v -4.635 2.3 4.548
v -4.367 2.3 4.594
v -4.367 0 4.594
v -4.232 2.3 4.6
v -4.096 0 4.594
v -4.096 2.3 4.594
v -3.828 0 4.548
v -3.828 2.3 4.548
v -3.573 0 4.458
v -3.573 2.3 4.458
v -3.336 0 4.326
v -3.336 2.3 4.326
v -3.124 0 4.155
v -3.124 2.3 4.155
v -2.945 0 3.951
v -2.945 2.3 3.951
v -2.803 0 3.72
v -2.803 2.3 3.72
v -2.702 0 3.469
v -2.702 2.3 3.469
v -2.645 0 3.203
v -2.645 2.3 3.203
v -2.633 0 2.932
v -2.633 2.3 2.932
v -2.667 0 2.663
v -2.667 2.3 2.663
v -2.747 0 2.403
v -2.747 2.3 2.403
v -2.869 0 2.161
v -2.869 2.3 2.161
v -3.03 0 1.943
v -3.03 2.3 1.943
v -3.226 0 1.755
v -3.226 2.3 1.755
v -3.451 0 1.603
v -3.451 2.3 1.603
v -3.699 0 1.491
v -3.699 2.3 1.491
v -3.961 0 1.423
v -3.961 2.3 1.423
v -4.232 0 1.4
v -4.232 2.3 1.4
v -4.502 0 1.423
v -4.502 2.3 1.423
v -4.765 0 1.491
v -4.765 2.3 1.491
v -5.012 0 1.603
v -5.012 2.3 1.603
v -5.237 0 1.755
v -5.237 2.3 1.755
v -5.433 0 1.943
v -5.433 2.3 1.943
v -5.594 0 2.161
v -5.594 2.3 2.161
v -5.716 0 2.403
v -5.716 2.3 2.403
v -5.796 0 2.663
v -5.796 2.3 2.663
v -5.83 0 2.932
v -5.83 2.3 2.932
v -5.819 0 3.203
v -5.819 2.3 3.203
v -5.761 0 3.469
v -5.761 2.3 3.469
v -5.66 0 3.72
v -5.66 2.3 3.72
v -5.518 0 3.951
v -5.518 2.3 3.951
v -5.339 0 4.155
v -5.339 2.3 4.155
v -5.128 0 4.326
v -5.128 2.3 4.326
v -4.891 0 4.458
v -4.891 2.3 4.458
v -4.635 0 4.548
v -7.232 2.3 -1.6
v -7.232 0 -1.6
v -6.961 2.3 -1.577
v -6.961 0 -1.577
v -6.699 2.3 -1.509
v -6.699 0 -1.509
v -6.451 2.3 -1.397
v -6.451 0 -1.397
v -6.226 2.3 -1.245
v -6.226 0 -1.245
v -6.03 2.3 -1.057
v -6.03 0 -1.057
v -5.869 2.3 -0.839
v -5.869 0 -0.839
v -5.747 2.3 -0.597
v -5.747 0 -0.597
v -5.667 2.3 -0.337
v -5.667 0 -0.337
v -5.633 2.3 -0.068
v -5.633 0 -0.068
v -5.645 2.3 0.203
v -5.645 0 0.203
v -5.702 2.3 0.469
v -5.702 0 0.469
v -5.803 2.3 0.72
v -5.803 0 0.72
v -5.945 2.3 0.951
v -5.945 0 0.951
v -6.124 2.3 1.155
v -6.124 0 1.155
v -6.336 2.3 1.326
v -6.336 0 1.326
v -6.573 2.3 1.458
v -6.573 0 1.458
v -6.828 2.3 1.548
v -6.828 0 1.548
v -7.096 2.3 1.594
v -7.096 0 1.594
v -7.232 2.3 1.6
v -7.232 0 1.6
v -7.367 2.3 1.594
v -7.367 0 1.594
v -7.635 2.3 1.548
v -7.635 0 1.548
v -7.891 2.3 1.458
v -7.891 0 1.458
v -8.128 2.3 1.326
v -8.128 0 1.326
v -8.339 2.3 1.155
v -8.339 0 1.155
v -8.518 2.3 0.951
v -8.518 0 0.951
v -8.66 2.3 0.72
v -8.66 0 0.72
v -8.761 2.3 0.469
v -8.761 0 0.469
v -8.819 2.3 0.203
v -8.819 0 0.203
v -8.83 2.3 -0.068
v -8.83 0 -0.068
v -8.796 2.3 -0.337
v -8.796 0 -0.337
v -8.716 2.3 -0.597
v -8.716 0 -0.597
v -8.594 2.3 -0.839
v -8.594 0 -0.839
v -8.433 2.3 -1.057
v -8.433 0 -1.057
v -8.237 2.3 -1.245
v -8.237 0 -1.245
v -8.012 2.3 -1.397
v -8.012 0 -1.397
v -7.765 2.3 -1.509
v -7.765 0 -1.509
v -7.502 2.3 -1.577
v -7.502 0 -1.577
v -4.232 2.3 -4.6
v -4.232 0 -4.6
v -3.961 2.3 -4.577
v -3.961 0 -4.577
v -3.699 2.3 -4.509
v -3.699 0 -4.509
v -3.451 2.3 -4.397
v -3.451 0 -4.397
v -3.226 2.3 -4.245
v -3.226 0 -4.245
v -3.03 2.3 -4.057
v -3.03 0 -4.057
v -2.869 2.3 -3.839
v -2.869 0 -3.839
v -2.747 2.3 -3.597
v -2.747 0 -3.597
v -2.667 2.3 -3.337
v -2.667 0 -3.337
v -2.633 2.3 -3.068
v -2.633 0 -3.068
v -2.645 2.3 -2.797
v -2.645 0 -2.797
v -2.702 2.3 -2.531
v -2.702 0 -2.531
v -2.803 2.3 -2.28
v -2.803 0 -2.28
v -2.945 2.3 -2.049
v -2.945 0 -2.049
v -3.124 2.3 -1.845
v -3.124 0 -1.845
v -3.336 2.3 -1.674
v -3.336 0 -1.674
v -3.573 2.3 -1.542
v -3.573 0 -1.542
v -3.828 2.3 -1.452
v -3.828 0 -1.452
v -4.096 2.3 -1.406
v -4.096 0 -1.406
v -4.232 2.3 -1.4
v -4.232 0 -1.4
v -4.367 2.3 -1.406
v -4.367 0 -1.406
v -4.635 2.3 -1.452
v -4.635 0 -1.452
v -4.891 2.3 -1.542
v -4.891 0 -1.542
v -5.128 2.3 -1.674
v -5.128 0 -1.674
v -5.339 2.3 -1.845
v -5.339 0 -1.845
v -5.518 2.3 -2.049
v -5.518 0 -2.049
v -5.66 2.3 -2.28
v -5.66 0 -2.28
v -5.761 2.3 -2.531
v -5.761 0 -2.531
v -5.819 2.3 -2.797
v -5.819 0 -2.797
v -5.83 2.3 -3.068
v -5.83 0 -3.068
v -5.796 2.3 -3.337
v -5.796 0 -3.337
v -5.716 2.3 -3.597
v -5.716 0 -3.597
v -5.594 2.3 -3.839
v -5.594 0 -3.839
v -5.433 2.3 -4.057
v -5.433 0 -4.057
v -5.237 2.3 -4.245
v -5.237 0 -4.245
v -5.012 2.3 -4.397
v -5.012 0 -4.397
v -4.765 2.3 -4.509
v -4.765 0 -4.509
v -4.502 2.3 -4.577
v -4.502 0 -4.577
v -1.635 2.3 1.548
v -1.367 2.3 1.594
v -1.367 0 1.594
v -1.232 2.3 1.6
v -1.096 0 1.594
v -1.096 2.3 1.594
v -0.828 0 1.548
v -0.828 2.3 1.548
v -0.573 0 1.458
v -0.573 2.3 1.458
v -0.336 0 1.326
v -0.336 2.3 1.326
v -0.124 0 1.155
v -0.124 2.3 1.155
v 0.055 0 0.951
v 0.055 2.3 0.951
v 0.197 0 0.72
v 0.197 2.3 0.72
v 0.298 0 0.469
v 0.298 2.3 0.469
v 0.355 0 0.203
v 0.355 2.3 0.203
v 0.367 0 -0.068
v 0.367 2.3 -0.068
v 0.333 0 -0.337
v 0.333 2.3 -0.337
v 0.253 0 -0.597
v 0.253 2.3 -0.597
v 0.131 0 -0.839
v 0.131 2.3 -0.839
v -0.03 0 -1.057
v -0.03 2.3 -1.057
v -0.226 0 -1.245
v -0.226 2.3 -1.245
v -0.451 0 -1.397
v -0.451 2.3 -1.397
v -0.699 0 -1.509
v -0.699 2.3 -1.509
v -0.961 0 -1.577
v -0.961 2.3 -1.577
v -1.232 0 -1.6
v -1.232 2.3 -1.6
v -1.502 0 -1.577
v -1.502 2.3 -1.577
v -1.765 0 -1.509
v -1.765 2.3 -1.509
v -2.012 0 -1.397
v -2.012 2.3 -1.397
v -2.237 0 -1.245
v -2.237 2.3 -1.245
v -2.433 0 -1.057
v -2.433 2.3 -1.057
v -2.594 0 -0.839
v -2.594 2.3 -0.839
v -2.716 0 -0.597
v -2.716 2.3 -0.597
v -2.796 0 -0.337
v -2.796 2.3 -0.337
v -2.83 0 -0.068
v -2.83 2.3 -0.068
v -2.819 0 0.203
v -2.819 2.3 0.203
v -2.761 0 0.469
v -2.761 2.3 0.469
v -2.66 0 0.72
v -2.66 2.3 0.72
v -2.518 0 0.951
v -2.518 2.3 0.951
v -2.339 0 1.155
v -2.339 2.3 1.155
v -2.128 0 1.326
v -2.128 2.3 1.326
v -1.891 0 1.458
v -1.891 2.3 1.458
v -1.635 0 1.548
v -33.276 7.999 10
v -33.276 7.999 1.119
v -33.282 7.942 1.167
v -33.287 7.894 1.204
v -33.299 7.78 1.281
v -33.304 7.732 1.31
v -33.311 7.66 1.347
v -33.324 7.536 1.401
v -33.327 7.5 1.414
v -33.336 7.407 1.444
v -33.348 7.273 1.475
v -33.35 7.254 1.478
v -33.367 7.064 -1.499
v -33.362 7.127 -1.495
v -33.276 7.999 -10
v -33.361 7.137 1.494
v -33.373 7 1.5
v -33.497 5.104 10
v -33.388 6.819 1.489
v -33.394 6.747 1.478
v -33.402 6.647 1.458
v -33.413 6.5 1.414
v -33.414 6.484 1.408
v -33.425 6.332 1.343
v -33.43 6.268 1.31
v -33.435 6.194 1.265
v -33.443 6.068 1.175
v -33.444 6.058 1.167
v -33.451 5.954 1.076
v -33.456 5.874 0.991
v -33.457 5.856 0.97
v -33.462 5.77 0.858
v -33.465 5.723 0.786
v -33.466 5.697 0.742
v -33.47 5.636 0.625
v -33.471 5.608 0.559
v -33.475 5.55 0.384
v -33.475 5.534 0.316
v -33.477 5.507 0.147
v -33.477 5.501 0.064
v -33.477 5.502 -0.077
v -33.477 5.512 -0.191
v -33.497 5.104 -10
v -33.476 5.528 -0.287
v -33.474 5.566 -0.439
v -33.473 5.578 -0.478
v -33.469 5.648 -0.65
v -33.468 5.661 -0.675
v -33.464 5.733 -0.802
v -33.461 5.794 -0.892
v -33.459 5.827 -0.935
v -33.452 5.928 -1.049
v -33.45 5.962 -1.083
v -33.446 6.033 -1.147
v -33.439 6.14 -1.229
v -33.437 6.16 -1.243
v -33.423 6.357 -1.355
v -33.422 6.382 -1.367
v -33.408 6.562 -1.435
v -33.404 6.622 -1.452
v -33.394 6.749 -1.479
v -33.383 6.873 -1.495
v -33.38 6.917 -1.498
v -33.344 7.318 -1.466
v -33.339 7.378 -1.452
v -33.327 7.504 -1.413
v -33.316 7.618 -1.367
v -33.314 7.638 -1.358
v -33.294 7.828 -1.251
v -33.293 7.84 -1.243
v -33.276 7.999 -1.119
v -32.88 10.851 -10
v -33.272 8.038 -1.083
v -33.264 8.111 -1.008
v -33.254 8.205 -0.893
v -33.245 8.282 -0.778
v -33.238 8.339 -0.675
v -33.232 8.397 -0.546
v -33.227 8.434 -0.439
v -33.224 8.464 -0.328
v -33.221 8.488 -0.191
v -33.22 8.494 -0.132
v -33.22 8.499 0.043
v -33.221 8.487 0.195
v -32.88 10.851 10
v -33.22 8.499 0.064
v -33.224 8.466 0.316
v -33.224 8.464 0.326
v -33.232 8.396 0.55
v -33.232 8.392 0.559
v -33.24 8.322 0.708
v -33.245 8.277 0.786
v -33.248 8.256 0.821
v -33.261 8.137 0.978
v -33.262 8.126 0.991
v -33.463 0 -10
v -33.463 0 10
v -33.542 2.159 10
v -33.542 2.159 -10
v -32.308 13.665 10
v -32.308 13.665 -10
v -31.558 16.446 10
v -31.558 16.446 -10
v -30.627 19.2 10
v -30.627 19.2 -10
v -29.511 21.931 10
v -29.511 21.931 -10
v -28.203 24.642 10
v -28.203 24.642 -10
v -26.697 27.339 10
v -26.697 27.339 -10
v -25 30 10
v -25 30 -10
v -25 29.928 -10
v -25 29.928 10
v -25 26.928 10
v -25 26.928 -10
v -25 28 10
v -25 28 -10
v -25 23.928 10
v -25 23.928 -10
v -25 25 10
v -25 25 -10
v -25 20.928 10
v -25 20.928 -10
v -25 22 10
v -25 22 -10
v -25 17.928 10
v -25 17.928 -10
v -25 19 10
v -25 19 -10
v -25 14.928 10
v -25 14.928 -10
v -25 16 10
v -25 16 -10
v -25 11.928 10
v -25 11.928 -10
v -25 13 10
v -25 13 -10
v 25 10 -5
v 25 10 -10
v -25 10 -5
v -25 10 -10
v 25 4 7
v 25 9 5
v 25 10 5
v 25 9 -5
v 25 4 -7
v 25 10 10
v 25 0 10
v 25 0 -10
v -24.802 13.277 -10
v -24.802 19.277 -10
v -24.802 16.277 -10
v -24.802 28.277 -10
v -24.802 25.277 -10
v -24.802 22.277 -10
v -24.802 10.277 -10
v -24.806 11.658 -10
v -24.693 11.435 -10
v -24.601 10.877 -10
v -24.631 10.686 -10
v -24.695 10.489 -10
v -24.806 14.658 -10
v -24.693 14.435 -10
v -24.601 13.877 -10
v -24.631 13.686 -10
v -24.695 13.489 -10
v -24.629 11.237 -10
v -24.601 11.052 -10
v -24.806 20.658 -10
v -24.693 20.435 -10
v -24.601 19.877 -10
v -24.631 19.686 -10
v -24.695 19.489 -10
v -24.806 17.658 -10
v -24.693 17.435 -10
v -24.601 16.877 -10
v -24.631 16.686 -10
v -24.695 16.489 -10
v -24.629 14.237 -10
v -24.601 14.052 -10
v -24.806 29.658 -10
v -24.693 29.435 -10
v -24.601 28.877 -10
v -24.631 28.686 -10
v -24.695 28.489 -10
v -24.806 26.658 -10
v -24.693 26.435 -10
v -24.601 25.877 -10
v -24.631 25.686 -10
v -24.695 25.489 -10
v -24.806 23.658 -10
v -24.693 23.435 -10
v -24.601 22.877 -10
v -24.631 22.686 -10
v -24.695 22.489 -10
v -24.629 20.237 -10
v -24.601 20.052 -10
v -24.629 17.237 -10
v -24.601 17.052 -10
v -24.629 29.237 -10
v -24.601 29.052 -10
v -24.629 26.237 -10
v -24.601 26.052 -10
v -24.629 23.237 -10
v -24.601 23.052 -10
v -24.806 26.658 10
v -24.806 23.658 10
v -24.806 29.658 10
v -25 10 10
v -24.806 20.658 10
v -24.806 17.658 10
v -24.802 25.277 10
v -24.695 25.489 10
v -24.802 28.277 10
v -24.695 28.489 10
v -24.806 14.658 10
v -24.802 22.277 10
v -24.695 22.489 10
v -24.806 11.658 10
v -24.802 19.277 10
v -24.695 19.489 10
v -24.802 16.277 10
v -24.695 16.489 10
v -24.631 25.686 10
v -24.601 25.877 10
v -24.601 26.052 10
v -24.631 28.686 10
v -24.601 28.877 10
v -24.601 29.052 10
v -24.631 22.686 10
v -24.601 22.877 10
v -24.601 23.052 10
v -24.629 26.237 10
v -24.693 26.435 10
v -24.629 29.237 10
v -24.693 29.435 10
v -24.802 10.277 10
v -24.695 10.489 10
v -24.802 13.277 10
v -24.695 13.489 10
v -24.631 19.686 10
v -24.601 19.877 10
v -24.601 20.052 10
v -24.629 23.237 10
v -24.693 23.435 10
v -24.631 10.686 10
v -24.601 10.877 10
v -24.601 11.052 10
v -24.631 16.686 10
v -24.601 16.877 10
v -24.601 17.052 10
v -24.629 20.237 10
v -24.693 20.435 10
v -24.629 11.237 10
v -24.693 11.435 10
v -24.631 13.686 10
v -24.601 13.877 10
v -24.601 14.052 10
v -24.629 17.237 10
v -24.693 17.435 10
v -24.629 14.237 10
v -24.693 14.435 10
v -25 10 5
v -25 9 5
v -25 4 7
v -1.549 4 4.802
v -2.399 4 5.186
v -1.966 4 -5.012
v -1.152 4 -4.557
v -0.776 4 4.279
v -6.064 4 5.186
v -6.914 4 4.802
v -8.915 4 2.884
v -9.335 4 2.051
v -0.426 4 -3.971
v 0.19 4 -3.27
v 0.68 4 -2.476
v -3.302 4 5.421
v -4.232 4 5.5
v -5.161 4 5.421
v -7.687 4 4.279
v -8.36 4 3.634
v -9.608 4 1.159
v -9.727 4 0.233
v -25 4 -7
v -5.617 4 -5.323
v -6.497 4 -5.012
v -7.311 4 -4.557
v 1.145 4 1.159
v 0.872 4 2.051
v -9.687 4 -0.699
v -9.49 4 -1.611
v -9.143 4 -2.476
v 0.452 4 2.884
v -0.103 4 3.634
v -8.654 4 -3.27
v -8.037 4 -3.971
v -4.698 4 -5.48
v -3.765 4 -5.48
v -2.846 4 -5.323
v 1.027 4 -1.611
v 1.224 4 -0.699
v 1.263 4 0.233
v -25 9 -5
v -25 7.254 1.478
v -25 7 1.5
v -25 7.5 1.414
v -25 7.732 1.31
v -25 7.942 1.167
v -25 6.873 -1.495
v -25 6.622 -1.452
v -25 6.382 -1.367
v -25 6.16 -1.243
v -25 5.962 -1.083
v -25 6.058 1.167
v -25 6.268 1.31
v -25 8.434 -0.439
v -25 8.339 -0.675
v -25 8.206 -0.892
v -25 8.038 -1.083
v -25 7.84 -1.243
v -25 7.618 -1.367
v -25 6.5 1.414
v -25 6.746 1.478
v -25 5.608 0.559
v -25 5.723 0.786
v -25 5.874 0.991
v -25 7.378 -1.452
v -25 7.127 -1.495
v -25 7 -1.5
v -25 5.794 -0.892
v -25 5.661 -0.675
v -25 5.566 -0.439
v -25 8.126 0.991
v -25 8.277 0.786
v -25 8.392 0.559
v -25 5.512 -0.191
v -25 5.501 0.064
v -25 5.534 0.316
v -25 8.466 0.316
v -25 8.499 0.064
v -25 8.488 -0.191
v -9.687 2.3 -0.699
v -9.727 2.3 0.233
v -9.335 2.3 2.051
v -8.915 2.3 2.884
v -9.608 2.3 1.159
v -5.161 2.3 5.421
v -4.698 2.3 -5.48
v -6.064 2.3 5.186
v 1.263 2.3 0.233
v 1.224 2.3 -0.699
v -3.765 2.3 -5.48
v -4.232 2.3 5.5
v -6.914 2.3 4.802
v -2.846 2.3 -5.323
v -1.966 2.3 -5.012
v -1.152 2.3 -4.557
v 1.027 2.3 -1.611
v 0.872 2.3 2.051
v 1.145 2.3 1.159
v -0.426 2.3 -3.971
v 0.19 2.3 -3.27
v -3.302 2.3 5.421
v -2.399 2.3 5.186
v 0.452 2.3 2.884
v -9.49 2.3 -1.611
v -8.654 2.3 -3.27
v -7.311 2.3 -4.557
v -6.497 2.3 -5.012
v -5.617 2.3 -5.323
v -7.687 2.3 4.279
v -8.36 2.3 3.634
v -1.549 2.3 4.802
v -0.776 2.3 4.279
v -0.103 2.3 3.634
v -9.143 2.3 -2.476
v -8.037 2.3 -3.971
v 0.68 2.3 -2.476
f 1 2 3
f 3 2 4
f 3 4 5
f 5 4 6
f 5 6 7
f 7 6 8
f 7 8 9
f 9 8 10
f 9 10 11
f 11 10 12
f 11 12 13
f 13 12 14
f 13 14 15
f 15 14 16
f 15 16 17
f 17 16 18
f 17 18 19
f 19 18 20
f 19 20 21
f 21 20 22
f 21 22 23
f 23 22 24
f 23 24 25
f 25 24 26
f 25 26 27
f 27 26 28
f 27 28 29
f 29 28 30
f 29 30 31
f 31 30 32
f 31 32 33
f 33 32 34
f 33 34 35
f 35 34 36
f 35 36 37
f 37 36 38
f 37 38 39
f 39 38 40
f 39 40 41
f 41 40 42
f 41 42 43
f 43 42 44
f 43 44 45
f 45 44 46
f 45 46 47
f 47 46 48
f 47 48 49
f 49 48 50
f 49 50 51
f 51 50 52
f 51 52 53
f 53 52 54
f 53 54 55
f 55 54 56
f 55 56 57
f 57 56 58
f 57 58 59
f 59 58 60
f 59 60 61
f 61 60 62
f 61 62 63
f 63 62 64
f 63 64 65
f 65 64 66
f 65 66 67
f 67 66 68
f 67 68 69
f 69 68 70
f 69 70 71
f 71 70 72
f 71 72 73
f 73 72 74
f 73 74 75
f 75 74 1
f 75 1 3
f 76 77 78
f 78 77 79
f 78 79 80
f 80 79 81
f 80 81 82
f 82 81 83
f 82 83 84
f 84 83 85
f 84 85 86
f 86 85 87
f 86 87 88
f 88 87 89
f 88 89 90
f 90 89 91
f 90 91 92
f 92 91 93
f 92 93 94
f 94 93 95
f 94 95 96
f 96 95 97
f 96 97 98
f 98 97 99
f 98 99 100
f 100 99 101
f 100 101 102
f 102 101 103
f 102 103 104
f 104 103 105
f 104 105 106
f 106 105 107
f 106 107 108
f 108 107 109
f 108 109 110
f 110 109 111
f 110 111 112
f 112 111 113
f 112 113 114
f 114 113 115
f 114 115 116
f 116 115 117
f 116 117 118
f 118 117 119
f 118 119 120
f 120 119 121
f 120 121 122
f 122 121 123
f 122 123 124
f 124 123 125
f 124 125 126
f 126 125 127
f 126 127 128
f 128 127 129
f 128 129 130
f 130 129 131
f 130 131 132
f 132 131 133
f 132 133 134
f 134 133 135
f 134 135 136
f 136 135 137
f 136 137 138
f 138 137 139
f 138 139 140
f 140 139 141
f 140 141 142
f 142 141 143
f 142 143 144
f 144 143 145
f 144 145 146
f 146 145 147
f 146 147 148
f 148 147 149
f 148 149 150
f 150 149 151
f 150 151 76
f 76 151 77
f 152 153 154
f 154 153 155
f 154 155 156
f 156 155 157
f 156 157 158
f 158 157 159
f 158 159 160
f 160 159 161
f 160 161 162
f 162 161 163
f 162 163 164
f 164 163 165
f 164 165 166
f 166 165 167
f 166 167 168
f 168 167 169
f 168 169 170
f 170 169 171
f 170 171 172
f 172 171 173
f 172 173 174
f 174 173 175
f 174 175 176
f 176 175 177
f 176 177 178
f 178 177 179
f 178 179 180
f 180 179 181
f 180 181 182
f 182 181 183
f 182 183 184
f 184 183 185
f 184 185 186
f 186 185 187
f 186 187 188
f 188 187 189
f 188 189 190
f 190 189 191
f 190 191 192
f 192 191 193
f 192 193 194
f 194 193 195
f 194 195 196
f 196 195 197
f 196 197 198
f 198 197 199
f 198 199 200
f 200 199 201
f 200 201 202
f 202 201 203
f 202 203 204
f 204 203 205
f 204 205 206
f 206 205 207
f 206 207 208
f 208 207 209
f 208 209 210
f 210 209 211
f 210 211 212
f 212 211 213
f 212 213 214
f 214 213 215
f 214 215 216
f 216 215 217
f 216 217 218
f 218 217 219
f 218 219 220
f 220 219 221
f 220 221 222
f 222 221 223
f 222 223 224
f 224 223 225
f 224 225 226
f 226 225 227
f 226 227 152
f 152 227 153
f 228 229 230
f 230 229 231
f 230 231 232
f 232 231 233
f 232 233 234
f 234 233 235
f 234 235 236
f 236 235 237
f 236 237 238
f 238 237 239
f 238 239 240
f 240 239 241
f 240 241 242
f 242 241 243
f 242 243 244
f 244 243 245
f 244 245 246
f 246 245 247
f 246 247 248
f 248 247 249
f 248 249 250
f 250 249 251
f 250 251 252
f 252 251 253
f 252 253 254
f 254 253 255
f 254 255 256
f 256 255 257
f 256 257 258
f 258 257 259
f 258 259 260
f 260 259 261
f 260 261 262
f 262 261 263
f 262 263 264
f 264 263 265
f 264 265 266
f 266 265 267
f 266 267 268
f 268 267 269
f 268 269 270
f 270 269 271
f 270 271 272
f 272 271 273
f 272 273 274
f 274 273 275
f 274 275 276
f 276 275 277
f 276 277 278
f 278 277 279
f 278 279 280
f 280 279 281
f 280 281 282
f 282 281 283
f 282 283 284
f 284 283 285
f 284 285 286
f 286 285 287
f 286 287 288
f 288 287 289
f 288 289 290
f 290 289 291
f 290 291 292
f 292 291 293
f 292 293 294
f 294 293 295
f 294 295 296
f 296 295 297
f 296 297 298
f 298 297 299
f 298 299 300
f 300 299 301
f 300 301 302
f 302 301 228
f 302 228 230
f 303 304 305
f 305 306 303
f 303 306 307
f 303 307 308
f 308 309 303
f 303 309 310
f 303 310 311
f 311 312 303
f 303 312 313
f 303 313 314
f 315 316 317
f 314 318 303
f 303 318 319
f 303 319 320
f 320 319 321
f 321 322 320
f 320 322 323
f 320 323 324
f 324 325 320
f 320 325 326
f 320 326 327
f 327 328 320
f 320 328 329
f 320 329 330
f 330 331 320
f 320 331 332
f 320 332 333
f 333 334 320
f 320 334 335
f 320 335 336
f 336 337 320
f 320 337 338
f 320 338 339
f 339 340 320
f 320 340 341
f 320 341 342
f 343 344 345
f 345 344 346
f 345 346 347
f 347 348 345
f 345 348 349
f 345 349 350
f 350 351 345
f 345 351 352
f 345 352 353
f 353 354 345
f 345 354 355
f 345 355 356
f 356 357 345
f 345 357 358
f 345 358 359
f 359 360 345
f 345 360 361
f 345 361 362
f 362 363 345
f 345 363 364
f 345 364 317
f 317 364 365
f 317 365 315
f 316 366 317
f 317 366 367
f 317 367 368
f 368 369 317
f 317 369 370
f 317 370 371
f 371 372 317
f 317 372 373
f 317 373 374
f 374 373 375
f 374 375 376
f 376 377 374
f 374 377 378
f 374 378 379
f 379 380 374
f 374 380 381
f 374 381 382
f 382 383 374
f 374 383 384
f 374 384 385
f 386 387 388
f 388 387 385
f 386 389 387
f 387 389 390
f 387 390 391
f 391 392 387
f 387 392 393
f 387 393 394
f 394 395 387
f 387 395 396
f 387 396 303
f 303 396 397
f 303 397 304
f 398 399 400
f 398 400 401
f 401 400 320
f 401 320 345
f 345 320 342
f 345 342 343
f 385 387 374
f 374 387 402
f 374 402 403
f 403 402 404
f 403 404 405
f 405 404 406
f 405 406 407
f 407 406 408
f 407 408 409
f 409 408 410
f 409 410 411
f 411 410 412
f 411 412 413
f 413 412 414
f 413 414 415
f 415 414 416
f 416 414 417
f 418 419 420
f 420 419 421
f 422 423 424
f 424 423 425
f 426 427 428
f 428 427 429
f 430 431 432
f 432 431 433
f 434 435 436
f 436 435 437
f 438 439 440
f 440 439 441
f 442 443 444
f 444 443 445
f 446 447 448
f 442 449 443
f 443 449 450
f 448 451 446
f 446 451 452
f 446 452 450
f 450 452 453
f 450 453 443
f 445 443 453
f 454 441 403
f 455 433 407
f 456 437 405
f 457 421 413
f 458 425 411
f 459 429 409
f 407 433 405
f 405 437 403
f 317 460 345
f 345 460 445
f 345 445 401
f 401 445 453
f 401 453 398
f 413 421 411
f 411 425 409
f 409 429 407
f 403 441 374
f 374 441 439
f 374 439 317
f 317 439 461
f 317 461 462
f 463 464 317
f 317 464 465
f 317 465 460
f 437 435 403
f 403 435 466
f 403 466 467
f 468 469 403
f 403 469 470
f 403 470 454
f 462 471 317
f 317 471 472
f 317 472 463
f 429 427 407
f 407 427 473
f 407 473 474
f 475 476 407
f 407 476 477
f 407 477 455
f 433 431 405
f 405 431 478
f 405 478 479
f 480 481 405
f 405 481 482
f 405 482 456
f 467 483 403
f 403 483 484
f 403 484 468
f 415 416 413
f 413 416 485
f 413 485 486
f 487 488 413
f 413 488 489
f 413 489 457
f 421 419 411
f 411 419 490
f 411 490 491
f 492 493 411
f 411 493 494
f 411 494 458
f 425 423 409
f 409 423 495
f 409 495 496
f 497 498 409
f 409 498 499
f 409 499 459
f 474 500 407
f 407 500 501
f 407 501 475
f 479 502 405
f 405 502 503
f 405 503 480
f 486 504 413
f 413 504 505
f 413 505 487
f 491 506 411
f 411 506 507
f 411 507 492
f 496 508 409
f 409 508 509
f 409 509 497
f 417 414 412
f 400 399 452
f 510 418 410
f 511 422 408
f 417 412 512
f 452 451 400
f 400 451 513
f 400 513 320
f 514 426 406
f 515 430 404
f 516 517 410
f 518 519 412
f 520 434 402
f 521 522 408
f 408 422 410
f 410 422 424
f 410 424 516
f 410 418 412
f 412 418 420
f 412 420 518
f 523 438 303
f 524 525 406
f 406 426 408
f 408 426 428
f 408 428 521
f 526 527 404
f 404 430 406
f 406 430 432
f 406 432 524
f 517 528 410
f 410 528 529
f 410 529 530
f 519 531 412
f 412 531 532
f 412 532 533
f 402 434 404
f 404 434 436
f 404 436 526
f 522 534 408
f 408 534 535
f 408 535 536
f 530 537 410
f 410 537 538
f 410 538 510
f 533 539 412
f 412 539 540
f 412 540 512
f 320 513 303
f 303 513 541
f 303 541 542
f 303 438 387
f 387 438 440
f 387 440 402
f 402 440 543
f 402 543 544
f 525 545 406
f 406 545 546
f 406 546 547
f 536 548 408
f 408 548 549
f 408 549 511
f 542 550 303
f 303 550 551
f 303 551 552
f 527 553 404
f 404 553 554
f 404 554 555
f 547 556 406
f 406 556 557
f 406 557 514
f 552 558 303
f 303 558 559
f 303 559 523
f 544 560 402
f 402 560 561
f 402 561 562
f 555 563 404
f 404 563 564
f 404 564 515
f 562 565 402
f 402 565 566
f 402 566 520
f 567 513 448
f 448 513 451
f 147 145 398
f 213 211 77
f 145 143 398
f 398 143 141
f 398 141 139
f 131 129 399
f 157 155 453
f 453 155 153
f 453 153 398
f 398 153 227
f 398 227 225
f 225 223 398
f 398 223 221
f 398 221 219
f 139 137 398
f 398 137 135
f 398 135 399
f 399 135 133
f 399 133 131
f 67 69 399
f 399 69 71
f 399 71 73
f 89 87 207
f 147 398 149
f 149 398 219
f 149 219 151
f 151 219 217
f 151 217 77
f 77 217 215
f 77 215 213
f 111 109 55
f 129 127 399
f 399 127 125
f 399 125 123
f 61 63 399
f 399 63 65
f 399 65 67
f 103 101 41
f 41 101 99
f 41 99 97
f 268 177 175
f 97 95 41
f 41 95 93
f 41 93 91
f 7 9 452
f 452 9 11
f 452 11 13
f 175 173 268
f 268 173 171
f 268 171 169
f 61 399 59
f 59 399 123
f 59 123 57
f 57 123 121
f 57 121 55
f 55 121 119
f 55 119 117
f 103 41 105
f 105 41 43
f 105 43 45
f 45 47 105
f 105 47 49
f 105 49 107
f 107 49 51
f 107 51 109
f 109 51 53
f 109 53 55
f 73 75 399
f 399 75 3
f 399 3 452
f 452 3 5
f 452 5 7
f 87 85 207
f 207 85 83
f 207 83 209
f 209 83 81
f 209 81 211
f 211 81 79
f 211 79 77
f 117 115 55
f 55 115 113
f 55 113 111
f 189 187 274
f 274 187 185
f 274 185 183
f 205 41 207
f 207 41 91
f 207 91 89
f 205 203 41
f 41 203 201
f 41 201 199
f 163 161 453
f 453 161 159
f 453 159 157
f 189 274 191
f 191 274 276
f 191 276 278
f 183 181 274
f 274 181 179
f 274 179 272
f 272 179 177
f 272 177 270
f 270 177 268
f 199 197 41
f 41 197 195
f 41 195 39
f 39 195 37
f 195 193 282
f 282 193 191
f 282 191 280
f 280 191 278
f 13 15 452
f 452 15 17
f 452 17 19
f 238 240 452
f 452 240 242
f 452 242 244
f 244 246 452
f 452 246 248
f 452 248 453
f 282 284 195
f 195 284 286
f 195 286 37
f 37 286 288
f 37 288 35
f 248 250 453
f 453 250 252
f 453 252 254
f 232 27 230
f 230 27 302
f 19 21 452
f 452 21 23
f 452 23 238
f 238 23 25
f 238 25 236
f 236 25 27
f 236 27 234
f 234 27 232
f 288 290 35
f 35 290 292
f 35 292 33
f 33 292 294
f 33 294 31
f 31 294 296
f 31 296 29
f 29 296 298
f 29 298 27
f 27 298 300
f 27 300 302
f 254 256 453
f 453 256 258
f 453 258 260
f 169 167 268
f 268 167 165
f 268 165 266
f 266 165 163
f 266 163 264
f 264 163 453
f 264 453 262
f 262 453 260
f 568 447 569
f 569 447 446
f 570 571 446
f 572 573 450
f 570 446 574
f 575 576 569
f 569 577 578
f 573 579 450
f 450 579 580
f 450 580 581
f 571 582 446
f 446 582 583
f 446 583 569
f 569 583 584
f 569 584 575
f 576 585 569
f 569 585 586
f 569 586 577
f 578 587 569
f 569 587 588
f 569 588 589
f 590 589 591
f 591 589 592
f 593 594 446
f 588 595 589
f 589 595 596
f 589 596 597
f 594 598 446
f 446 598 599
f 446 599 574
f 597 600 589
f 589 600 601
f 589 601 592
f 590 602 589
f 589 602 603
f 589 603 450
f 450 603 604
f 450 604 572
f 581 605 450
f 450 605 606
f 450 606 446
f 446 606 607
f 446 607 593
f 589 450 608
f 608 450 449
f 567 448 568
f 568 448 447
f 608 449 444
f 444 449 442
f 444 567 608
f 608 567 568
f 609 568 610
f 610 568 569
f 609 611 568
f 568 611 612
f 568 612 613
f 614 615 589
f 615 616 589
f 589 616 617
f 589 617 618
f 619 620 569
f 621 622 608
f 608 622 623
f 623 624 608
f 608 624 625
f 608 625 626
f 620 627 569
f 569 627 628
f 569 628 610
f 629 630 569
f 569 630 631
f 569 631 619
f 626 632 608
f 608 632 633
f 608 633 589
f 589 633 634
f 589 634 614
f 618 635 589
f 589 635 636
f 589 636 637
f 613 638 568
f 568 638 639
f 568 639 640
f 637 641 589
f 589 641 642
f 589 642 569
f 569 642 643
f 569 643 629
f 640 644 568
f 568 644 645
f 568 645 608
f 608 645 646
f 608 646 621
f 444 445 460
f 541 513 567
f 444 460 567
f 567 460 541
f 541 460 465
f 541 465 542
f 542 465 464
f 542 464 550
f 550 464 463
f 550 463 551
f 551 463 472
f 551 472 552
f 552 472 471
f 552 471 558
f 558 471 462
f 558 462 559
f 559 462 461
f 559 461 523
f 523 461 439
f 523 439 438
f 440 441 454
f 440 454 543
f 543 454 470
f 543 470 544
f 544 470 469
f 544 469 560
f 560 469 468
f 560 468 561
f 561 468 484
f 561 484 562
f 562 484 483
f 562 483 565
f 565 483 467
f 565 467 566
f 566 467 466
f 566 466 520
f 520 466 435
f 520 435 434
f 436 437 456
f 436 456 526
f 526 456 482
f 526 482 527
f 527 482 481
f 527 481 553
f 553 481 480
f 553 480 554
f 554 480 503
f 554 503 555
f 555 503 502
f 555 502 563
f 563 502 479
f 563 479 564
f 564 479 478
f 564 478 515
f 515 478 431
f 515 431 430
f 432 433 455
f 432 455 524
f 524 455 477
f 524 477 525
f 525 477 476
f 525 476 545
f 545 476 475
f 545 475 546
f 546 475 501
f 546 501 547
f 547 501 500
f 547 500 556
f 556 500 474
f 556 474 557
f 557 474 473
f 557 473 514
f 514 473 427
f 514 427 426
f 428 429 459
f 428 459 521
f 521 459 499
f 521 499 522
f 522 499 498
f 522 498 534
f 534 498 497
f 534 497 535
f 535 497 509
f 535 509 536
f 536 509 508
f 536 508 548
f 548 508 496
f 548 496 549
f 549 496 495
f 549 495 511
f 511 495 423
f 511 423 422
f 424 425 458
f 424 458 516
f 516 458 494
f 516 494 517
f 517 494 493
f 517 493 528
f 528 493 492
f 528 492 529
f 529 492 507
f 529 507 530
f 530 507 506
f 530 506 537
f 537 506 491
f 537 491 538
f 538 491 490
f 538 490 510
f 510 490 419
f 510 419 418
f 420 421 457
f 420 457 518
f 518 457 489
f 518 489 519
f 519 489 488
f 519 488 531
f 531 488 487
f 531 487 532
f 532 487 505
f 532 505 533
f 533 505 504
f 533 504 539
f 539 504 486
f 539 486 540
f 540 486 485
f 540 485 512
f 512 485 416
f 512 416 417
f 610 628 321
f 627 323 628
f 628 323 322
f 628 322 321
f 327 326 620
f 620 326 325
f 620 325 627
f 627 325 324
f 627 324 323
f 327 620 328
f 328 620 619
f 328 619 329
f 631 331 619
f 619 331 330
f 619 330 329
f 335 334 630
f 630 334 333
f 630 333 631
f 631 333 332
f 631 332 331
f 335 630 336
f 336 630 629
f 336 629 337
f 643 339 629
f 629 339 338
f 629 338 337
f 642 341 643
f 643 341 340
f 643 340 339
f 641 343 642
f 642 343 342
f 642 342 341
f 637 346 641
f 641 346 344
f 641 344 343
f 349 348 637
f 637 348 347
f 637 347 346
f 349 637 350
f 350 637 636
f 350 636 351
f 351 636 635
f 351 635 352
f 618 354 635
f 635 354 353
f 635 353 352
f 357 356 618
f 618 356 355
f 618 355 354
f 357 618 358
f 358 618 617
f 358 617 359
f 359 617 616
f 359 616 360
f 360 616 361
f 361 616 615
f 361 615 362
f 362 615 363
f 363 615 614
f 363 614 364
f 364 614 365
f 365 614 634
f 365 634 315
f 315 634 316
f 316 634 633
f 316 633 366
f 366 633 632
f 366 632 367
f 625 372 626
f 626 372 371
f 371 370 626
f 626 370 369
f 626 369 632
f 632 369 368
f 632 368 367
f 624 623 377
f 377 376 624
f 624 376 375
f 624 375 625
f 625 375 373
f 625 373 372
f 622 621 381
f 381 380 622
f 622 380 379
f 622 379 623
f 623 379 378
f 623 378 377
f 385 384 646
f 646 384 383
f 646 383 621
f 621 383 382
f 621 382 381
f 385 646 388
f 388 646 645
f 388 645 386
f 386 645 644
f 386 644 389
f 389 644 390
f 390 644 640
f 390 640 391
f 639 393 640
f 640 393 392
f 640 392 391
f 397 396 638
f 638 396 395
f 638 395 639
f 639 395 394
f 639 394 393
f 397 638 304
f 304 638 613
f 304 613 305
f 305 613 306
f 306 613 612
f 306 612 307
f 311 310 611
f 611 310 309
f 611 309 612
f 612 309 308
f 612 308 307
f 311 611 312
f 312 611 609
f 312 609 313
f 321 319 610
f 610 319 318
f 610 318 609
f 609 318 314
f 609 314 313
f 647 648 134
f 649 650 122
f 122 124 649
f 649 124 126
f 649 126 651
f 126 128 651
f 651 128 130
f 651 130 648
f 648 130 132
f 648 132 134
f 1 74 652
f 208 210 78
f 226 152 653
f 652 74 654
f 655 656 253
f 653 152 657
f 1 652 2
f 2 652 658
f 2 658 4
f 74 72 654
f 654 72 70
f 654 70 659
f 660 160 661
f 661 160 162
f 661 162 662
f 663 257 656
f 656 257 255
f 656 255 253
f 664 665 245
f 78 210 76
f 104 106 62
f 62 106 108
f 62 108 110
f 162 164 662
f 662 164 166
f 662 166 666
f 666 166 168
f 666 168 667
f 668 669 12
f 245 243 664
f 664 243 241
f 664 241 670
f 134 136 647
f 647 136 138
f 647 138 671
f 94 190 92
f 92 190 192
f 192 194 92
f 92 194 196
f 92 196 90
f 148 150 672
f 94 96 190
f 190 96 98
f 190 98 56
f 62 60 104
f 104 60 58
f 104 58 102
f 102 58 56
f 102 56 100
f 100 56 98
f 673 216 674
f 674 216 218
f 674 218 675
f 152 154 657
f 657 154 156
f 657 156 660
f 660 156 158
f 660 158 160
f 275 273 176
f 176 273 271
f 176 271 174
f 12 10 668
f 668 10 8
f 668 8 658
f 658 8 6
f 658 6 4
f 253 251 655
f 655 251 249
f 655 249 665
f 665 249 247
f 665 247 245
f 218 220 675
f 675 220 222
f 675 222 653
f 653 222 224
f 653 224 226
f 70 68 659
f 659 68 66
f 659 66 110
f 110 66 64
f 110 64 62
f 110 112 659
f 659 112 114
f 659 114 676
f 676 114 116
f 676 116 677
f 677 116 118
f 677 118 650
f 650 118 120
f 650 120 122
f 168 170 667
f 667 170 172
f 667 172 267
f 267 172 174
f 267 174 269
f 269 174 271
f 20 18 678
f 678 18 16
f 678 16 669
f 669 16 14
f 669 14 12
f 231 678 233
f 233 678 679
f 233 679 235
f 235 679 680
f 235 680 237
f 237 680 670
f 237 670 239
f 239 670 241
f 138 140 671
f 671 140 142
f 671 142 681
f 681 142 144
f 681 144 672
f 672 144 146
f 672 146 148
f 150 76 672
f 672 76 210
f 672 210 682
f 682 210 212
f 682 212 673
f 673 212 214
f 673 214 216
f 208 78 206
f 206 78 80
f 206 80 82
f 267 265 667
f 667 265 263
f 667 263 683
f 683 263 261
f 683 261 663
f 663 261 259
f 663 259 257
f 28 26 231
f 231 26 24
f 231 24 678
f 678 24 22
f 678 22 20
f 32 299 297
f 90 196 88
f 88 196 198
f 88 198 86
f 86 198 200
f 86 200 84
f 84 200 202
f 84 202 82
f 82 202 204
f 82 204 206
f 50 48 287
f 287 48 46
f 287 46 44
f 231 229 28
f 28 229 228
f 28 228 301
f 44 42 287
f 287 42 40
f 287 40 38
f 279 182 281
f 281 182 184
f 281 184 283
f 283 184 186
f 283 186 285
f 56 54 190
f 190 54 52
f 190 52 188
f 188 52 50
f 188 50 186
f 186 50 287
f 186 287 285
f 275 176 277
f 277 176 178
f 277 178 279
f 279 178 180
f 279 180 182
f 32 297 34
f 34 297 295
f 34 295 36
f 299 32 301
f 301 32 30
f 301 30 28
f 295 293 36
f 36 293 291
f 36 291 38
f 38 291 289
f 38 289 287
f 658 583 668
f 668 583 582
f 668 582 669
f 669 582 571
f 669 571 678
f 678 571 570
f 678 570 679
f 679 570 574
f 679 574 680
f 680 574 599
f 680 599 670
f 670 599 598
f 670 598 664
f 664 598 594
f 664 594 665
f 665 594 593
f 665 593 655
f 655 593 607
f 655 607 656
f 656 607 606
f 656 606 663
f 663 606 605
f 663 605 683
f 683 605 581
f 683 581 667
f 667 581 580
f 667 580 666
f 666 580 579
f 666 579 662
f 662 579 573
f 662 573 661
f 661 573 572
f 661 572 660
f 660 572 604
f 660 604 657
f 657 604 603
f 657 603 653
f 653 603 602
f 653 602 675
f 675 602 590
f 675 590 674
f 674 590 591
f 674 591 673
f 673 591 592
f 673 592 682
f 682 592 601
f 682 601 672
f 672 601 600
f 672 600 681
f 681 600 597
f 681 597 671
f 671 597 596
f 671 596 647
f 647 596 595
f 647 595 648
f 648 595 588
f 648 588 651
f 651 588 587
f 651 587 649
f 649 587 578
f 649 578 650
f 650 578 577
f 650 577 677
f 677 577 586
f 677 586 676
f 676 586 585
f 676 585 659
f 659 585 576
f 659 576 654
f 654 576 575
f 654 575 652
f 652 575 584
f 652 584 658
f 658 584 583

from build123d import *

# Parameters (mm, degrees)
SKETCH_1_W               = 50
SKETCH_1_H               = 20
EXTRUDE_1_DEPTH          = 10
CUT_EXTRUDE_1_DEPTH      = 57
CUT_EXTRUDE_2_DEPTH      = 57
EXTRUDE_2_DEPTH          = 20
EXTRUDE_3_DEPTH          = 20
CUT_EXTRUDE_3_DEPTH      = 3
CUT_EXTRUDE_3_DEPTH_BACK = 16
SKETCH_7_R               = 1.5
SKETCH_12_R              = 1.6
CUT_EXTRUDE_4_DEPTH      = 13
SKETCH_13_R              = 5.5
CUT_EXTRUDE_6_DEPTH      = 1.7


with BuildPart() as part:
    # 草图1 → 凸台-拉伸1 (new body)
    with BuildSketch(Plane(origin=(0, 0, 0), x_dir=(1, 0, 0), z_dir=(0, 1, 0))):
        Rectangle(SKETCH_1_W, SKETCH_1_H)
    extrude(amount=EXTRUDE_1_DEPTH)

    # 草图2 → 切除-拉伸1 (cut)
    with BuildSketch(Plane.ZY.offset(25)):
        Polygon((7, 4), (-7, 4), (-5, 9), (5, 9), align=None)
    extrude(amount=-CUT_EXTRUDE_1_DEPTH, mode=Mode.SUBTRACT)

    # 草图3 → 切除-拉伸2 (cut)
    with BuildSketch(Plane.ZY.offset(25)):
        Polygon((-5, 9), (-5, 16.661524688), (-5, 24.510715087), (5, 24.510715087), (5, 9), align=None)
    extrude(amount=-CUT_EXTRUDE_2_DEPTH, mode=Mode.SUBTRACT)

    # 草图5 → 凸台-拉伸2 (add)
    with BuildSketch(Plane.XY.offset(10)):
        with BuildLine():
            Line((-25, 0), (-25, 30))
            add(Edge.make_bspline(
                [(-25, 30), (-34.394309347, 16.149944275), (-33.463121006, 0)],
                knots=[0, 0, 0, 1, 1, 1], degree=2))
            Line((-33.463121006, 0), (-25, 0))
        make_face()
    extrude(amount=-EXTRUDE_2_DEPTH)

    # 草图6 → 凸台-拉伸3 (add)
    with BuildSketch(Plane(origin=(0, 0, -10), x_dir=(-1, 0, 0), z_dir=(0, 0, -1))):
        with BuildLine():
            Line((25, 11.927521415), (25, 10))
            add(Edge.make_bspline(
                [(25, 10), (24.19442895, 10.965387518), (25, 11.927521415)],
                knots=[0, 0, 0, 1, 1, 1], degree=2))
        make_face()
        with BuildLine():
            Line((25, 14.927521415), (25, 13))
            add(Edge.make_bspline(
                [(25, 13), (24.19442895, 13.965387518), (25, 14.927521415)],
                knots=[0, 0, 0, 1, 1, 1], degree=2))
        make_face()
        with BuildLine():
            Line((25, 17.927521415), (25, 16))
            add(Edge.make_bspline(
                [(25, 16), (24.19442895, 16.965387518), (25, 17.927521415)],
                knots=[0, 0, 0, 1, 1, 1], degree=2))
        make_face()
        with BuildLine():
            Line((25, 20.927521415), (25, 19))
            add(Edge.make_bspline(
                [(25, 19), (24.19442895, 19.965387518), (25, 20.927521415)],
                knots=[0, 0, 0, 1, 1, 1], degree=2))
        make_face()
        with BuildLine():
            Line((25, 23.927521415), (25, 22))
            add(Edge.make_bspline(
                [(25, 22), (24.19442895, 22.965387518), (25, 23.927521415)],
                knots=[0, 0, 0, 1, 1, 1], degree=2))
        make_face()
        with BuildLine():
            Line((25, 26.927521415), (25, 25))
            add(Edge.make_bspline(
                [(25, 25), (24.19442895, 25.965387518), (25, 26.927521415)],
                knots=[0, 0, 0, 1, 1, 1], degree=2))
        make_face()
        with BuildLine():
            Line((25, 29.927521415), (25, 28))
            add(Edge.make_bspline(
                [(25, 28), (24.19442895, 28.965387518), (25, 29.927521415)],
                knots=[0, 0, 0, 1, 1, 1], degree=2))
        make_face()
    extrude(amount=-EXTRUDE_3_DEPTH)

    # 草图7 → 切除-拉伸3 (cut, two sides: drawn at the far end of the back side and taken through both)
    with BuildSketch(Plane(origin=(-25, 0, 0), x_dir=(0, 0, -1), z_dir=(1, 0, 0)).offset(-CUT_EXTRUDE_3_DEPTH_BACK)):
        with Locations(Location((0, 7, 0), (0, 0, 180))):
            Circle(SKETCH_7_R)
    extrude(amount=CUT_EXTRUDE_3_DEPTH + CUT_EXTRUDE_3_DEPTH_BACK, mode=Mode.SUBTRACT)

    # 草图12 → 切除-拉伸4 (cut)
    with BuildSketch(Plane.XZ):
        with Locations(Location((-4.231560503, 3, 0), (0, 0, 270))):
            Circle(SKETCH_12_R)
        with Locations(Location((-4.231560503, -3, 0), (0, 0, 270))):
            Circle(SKETCH_12_R)
        with Locations(Location((-1.231560503, 0, 0), (0, 0, 270))):
            Circle(SKETCH_12_R)
        with Locations(Location((-7.231560503, 0, 0), (0, 0, 270))):
            Circle(SKETCH_12_R)
    extrude(amount=-CUT_EXTRUDE_4_DEPTH, mode=Mode.SUBTRACT)

    # 草图13 → 切除-拉伸6 (cut)
    with BuildSketch(Plane(origin=(0, 4, 0), x_dir=(1, 0, 0), z_dir=(0, 1, 0))):
        with Locations(Location((-4.231560503, 0, 0), (0, 0, 270))):
            Circle(SKETCH_13_R)
    extrude(amount=-CUT_EXTRUDE_6_DEPTH, mode=Mode.SUBTRACT)


solid = part.part
